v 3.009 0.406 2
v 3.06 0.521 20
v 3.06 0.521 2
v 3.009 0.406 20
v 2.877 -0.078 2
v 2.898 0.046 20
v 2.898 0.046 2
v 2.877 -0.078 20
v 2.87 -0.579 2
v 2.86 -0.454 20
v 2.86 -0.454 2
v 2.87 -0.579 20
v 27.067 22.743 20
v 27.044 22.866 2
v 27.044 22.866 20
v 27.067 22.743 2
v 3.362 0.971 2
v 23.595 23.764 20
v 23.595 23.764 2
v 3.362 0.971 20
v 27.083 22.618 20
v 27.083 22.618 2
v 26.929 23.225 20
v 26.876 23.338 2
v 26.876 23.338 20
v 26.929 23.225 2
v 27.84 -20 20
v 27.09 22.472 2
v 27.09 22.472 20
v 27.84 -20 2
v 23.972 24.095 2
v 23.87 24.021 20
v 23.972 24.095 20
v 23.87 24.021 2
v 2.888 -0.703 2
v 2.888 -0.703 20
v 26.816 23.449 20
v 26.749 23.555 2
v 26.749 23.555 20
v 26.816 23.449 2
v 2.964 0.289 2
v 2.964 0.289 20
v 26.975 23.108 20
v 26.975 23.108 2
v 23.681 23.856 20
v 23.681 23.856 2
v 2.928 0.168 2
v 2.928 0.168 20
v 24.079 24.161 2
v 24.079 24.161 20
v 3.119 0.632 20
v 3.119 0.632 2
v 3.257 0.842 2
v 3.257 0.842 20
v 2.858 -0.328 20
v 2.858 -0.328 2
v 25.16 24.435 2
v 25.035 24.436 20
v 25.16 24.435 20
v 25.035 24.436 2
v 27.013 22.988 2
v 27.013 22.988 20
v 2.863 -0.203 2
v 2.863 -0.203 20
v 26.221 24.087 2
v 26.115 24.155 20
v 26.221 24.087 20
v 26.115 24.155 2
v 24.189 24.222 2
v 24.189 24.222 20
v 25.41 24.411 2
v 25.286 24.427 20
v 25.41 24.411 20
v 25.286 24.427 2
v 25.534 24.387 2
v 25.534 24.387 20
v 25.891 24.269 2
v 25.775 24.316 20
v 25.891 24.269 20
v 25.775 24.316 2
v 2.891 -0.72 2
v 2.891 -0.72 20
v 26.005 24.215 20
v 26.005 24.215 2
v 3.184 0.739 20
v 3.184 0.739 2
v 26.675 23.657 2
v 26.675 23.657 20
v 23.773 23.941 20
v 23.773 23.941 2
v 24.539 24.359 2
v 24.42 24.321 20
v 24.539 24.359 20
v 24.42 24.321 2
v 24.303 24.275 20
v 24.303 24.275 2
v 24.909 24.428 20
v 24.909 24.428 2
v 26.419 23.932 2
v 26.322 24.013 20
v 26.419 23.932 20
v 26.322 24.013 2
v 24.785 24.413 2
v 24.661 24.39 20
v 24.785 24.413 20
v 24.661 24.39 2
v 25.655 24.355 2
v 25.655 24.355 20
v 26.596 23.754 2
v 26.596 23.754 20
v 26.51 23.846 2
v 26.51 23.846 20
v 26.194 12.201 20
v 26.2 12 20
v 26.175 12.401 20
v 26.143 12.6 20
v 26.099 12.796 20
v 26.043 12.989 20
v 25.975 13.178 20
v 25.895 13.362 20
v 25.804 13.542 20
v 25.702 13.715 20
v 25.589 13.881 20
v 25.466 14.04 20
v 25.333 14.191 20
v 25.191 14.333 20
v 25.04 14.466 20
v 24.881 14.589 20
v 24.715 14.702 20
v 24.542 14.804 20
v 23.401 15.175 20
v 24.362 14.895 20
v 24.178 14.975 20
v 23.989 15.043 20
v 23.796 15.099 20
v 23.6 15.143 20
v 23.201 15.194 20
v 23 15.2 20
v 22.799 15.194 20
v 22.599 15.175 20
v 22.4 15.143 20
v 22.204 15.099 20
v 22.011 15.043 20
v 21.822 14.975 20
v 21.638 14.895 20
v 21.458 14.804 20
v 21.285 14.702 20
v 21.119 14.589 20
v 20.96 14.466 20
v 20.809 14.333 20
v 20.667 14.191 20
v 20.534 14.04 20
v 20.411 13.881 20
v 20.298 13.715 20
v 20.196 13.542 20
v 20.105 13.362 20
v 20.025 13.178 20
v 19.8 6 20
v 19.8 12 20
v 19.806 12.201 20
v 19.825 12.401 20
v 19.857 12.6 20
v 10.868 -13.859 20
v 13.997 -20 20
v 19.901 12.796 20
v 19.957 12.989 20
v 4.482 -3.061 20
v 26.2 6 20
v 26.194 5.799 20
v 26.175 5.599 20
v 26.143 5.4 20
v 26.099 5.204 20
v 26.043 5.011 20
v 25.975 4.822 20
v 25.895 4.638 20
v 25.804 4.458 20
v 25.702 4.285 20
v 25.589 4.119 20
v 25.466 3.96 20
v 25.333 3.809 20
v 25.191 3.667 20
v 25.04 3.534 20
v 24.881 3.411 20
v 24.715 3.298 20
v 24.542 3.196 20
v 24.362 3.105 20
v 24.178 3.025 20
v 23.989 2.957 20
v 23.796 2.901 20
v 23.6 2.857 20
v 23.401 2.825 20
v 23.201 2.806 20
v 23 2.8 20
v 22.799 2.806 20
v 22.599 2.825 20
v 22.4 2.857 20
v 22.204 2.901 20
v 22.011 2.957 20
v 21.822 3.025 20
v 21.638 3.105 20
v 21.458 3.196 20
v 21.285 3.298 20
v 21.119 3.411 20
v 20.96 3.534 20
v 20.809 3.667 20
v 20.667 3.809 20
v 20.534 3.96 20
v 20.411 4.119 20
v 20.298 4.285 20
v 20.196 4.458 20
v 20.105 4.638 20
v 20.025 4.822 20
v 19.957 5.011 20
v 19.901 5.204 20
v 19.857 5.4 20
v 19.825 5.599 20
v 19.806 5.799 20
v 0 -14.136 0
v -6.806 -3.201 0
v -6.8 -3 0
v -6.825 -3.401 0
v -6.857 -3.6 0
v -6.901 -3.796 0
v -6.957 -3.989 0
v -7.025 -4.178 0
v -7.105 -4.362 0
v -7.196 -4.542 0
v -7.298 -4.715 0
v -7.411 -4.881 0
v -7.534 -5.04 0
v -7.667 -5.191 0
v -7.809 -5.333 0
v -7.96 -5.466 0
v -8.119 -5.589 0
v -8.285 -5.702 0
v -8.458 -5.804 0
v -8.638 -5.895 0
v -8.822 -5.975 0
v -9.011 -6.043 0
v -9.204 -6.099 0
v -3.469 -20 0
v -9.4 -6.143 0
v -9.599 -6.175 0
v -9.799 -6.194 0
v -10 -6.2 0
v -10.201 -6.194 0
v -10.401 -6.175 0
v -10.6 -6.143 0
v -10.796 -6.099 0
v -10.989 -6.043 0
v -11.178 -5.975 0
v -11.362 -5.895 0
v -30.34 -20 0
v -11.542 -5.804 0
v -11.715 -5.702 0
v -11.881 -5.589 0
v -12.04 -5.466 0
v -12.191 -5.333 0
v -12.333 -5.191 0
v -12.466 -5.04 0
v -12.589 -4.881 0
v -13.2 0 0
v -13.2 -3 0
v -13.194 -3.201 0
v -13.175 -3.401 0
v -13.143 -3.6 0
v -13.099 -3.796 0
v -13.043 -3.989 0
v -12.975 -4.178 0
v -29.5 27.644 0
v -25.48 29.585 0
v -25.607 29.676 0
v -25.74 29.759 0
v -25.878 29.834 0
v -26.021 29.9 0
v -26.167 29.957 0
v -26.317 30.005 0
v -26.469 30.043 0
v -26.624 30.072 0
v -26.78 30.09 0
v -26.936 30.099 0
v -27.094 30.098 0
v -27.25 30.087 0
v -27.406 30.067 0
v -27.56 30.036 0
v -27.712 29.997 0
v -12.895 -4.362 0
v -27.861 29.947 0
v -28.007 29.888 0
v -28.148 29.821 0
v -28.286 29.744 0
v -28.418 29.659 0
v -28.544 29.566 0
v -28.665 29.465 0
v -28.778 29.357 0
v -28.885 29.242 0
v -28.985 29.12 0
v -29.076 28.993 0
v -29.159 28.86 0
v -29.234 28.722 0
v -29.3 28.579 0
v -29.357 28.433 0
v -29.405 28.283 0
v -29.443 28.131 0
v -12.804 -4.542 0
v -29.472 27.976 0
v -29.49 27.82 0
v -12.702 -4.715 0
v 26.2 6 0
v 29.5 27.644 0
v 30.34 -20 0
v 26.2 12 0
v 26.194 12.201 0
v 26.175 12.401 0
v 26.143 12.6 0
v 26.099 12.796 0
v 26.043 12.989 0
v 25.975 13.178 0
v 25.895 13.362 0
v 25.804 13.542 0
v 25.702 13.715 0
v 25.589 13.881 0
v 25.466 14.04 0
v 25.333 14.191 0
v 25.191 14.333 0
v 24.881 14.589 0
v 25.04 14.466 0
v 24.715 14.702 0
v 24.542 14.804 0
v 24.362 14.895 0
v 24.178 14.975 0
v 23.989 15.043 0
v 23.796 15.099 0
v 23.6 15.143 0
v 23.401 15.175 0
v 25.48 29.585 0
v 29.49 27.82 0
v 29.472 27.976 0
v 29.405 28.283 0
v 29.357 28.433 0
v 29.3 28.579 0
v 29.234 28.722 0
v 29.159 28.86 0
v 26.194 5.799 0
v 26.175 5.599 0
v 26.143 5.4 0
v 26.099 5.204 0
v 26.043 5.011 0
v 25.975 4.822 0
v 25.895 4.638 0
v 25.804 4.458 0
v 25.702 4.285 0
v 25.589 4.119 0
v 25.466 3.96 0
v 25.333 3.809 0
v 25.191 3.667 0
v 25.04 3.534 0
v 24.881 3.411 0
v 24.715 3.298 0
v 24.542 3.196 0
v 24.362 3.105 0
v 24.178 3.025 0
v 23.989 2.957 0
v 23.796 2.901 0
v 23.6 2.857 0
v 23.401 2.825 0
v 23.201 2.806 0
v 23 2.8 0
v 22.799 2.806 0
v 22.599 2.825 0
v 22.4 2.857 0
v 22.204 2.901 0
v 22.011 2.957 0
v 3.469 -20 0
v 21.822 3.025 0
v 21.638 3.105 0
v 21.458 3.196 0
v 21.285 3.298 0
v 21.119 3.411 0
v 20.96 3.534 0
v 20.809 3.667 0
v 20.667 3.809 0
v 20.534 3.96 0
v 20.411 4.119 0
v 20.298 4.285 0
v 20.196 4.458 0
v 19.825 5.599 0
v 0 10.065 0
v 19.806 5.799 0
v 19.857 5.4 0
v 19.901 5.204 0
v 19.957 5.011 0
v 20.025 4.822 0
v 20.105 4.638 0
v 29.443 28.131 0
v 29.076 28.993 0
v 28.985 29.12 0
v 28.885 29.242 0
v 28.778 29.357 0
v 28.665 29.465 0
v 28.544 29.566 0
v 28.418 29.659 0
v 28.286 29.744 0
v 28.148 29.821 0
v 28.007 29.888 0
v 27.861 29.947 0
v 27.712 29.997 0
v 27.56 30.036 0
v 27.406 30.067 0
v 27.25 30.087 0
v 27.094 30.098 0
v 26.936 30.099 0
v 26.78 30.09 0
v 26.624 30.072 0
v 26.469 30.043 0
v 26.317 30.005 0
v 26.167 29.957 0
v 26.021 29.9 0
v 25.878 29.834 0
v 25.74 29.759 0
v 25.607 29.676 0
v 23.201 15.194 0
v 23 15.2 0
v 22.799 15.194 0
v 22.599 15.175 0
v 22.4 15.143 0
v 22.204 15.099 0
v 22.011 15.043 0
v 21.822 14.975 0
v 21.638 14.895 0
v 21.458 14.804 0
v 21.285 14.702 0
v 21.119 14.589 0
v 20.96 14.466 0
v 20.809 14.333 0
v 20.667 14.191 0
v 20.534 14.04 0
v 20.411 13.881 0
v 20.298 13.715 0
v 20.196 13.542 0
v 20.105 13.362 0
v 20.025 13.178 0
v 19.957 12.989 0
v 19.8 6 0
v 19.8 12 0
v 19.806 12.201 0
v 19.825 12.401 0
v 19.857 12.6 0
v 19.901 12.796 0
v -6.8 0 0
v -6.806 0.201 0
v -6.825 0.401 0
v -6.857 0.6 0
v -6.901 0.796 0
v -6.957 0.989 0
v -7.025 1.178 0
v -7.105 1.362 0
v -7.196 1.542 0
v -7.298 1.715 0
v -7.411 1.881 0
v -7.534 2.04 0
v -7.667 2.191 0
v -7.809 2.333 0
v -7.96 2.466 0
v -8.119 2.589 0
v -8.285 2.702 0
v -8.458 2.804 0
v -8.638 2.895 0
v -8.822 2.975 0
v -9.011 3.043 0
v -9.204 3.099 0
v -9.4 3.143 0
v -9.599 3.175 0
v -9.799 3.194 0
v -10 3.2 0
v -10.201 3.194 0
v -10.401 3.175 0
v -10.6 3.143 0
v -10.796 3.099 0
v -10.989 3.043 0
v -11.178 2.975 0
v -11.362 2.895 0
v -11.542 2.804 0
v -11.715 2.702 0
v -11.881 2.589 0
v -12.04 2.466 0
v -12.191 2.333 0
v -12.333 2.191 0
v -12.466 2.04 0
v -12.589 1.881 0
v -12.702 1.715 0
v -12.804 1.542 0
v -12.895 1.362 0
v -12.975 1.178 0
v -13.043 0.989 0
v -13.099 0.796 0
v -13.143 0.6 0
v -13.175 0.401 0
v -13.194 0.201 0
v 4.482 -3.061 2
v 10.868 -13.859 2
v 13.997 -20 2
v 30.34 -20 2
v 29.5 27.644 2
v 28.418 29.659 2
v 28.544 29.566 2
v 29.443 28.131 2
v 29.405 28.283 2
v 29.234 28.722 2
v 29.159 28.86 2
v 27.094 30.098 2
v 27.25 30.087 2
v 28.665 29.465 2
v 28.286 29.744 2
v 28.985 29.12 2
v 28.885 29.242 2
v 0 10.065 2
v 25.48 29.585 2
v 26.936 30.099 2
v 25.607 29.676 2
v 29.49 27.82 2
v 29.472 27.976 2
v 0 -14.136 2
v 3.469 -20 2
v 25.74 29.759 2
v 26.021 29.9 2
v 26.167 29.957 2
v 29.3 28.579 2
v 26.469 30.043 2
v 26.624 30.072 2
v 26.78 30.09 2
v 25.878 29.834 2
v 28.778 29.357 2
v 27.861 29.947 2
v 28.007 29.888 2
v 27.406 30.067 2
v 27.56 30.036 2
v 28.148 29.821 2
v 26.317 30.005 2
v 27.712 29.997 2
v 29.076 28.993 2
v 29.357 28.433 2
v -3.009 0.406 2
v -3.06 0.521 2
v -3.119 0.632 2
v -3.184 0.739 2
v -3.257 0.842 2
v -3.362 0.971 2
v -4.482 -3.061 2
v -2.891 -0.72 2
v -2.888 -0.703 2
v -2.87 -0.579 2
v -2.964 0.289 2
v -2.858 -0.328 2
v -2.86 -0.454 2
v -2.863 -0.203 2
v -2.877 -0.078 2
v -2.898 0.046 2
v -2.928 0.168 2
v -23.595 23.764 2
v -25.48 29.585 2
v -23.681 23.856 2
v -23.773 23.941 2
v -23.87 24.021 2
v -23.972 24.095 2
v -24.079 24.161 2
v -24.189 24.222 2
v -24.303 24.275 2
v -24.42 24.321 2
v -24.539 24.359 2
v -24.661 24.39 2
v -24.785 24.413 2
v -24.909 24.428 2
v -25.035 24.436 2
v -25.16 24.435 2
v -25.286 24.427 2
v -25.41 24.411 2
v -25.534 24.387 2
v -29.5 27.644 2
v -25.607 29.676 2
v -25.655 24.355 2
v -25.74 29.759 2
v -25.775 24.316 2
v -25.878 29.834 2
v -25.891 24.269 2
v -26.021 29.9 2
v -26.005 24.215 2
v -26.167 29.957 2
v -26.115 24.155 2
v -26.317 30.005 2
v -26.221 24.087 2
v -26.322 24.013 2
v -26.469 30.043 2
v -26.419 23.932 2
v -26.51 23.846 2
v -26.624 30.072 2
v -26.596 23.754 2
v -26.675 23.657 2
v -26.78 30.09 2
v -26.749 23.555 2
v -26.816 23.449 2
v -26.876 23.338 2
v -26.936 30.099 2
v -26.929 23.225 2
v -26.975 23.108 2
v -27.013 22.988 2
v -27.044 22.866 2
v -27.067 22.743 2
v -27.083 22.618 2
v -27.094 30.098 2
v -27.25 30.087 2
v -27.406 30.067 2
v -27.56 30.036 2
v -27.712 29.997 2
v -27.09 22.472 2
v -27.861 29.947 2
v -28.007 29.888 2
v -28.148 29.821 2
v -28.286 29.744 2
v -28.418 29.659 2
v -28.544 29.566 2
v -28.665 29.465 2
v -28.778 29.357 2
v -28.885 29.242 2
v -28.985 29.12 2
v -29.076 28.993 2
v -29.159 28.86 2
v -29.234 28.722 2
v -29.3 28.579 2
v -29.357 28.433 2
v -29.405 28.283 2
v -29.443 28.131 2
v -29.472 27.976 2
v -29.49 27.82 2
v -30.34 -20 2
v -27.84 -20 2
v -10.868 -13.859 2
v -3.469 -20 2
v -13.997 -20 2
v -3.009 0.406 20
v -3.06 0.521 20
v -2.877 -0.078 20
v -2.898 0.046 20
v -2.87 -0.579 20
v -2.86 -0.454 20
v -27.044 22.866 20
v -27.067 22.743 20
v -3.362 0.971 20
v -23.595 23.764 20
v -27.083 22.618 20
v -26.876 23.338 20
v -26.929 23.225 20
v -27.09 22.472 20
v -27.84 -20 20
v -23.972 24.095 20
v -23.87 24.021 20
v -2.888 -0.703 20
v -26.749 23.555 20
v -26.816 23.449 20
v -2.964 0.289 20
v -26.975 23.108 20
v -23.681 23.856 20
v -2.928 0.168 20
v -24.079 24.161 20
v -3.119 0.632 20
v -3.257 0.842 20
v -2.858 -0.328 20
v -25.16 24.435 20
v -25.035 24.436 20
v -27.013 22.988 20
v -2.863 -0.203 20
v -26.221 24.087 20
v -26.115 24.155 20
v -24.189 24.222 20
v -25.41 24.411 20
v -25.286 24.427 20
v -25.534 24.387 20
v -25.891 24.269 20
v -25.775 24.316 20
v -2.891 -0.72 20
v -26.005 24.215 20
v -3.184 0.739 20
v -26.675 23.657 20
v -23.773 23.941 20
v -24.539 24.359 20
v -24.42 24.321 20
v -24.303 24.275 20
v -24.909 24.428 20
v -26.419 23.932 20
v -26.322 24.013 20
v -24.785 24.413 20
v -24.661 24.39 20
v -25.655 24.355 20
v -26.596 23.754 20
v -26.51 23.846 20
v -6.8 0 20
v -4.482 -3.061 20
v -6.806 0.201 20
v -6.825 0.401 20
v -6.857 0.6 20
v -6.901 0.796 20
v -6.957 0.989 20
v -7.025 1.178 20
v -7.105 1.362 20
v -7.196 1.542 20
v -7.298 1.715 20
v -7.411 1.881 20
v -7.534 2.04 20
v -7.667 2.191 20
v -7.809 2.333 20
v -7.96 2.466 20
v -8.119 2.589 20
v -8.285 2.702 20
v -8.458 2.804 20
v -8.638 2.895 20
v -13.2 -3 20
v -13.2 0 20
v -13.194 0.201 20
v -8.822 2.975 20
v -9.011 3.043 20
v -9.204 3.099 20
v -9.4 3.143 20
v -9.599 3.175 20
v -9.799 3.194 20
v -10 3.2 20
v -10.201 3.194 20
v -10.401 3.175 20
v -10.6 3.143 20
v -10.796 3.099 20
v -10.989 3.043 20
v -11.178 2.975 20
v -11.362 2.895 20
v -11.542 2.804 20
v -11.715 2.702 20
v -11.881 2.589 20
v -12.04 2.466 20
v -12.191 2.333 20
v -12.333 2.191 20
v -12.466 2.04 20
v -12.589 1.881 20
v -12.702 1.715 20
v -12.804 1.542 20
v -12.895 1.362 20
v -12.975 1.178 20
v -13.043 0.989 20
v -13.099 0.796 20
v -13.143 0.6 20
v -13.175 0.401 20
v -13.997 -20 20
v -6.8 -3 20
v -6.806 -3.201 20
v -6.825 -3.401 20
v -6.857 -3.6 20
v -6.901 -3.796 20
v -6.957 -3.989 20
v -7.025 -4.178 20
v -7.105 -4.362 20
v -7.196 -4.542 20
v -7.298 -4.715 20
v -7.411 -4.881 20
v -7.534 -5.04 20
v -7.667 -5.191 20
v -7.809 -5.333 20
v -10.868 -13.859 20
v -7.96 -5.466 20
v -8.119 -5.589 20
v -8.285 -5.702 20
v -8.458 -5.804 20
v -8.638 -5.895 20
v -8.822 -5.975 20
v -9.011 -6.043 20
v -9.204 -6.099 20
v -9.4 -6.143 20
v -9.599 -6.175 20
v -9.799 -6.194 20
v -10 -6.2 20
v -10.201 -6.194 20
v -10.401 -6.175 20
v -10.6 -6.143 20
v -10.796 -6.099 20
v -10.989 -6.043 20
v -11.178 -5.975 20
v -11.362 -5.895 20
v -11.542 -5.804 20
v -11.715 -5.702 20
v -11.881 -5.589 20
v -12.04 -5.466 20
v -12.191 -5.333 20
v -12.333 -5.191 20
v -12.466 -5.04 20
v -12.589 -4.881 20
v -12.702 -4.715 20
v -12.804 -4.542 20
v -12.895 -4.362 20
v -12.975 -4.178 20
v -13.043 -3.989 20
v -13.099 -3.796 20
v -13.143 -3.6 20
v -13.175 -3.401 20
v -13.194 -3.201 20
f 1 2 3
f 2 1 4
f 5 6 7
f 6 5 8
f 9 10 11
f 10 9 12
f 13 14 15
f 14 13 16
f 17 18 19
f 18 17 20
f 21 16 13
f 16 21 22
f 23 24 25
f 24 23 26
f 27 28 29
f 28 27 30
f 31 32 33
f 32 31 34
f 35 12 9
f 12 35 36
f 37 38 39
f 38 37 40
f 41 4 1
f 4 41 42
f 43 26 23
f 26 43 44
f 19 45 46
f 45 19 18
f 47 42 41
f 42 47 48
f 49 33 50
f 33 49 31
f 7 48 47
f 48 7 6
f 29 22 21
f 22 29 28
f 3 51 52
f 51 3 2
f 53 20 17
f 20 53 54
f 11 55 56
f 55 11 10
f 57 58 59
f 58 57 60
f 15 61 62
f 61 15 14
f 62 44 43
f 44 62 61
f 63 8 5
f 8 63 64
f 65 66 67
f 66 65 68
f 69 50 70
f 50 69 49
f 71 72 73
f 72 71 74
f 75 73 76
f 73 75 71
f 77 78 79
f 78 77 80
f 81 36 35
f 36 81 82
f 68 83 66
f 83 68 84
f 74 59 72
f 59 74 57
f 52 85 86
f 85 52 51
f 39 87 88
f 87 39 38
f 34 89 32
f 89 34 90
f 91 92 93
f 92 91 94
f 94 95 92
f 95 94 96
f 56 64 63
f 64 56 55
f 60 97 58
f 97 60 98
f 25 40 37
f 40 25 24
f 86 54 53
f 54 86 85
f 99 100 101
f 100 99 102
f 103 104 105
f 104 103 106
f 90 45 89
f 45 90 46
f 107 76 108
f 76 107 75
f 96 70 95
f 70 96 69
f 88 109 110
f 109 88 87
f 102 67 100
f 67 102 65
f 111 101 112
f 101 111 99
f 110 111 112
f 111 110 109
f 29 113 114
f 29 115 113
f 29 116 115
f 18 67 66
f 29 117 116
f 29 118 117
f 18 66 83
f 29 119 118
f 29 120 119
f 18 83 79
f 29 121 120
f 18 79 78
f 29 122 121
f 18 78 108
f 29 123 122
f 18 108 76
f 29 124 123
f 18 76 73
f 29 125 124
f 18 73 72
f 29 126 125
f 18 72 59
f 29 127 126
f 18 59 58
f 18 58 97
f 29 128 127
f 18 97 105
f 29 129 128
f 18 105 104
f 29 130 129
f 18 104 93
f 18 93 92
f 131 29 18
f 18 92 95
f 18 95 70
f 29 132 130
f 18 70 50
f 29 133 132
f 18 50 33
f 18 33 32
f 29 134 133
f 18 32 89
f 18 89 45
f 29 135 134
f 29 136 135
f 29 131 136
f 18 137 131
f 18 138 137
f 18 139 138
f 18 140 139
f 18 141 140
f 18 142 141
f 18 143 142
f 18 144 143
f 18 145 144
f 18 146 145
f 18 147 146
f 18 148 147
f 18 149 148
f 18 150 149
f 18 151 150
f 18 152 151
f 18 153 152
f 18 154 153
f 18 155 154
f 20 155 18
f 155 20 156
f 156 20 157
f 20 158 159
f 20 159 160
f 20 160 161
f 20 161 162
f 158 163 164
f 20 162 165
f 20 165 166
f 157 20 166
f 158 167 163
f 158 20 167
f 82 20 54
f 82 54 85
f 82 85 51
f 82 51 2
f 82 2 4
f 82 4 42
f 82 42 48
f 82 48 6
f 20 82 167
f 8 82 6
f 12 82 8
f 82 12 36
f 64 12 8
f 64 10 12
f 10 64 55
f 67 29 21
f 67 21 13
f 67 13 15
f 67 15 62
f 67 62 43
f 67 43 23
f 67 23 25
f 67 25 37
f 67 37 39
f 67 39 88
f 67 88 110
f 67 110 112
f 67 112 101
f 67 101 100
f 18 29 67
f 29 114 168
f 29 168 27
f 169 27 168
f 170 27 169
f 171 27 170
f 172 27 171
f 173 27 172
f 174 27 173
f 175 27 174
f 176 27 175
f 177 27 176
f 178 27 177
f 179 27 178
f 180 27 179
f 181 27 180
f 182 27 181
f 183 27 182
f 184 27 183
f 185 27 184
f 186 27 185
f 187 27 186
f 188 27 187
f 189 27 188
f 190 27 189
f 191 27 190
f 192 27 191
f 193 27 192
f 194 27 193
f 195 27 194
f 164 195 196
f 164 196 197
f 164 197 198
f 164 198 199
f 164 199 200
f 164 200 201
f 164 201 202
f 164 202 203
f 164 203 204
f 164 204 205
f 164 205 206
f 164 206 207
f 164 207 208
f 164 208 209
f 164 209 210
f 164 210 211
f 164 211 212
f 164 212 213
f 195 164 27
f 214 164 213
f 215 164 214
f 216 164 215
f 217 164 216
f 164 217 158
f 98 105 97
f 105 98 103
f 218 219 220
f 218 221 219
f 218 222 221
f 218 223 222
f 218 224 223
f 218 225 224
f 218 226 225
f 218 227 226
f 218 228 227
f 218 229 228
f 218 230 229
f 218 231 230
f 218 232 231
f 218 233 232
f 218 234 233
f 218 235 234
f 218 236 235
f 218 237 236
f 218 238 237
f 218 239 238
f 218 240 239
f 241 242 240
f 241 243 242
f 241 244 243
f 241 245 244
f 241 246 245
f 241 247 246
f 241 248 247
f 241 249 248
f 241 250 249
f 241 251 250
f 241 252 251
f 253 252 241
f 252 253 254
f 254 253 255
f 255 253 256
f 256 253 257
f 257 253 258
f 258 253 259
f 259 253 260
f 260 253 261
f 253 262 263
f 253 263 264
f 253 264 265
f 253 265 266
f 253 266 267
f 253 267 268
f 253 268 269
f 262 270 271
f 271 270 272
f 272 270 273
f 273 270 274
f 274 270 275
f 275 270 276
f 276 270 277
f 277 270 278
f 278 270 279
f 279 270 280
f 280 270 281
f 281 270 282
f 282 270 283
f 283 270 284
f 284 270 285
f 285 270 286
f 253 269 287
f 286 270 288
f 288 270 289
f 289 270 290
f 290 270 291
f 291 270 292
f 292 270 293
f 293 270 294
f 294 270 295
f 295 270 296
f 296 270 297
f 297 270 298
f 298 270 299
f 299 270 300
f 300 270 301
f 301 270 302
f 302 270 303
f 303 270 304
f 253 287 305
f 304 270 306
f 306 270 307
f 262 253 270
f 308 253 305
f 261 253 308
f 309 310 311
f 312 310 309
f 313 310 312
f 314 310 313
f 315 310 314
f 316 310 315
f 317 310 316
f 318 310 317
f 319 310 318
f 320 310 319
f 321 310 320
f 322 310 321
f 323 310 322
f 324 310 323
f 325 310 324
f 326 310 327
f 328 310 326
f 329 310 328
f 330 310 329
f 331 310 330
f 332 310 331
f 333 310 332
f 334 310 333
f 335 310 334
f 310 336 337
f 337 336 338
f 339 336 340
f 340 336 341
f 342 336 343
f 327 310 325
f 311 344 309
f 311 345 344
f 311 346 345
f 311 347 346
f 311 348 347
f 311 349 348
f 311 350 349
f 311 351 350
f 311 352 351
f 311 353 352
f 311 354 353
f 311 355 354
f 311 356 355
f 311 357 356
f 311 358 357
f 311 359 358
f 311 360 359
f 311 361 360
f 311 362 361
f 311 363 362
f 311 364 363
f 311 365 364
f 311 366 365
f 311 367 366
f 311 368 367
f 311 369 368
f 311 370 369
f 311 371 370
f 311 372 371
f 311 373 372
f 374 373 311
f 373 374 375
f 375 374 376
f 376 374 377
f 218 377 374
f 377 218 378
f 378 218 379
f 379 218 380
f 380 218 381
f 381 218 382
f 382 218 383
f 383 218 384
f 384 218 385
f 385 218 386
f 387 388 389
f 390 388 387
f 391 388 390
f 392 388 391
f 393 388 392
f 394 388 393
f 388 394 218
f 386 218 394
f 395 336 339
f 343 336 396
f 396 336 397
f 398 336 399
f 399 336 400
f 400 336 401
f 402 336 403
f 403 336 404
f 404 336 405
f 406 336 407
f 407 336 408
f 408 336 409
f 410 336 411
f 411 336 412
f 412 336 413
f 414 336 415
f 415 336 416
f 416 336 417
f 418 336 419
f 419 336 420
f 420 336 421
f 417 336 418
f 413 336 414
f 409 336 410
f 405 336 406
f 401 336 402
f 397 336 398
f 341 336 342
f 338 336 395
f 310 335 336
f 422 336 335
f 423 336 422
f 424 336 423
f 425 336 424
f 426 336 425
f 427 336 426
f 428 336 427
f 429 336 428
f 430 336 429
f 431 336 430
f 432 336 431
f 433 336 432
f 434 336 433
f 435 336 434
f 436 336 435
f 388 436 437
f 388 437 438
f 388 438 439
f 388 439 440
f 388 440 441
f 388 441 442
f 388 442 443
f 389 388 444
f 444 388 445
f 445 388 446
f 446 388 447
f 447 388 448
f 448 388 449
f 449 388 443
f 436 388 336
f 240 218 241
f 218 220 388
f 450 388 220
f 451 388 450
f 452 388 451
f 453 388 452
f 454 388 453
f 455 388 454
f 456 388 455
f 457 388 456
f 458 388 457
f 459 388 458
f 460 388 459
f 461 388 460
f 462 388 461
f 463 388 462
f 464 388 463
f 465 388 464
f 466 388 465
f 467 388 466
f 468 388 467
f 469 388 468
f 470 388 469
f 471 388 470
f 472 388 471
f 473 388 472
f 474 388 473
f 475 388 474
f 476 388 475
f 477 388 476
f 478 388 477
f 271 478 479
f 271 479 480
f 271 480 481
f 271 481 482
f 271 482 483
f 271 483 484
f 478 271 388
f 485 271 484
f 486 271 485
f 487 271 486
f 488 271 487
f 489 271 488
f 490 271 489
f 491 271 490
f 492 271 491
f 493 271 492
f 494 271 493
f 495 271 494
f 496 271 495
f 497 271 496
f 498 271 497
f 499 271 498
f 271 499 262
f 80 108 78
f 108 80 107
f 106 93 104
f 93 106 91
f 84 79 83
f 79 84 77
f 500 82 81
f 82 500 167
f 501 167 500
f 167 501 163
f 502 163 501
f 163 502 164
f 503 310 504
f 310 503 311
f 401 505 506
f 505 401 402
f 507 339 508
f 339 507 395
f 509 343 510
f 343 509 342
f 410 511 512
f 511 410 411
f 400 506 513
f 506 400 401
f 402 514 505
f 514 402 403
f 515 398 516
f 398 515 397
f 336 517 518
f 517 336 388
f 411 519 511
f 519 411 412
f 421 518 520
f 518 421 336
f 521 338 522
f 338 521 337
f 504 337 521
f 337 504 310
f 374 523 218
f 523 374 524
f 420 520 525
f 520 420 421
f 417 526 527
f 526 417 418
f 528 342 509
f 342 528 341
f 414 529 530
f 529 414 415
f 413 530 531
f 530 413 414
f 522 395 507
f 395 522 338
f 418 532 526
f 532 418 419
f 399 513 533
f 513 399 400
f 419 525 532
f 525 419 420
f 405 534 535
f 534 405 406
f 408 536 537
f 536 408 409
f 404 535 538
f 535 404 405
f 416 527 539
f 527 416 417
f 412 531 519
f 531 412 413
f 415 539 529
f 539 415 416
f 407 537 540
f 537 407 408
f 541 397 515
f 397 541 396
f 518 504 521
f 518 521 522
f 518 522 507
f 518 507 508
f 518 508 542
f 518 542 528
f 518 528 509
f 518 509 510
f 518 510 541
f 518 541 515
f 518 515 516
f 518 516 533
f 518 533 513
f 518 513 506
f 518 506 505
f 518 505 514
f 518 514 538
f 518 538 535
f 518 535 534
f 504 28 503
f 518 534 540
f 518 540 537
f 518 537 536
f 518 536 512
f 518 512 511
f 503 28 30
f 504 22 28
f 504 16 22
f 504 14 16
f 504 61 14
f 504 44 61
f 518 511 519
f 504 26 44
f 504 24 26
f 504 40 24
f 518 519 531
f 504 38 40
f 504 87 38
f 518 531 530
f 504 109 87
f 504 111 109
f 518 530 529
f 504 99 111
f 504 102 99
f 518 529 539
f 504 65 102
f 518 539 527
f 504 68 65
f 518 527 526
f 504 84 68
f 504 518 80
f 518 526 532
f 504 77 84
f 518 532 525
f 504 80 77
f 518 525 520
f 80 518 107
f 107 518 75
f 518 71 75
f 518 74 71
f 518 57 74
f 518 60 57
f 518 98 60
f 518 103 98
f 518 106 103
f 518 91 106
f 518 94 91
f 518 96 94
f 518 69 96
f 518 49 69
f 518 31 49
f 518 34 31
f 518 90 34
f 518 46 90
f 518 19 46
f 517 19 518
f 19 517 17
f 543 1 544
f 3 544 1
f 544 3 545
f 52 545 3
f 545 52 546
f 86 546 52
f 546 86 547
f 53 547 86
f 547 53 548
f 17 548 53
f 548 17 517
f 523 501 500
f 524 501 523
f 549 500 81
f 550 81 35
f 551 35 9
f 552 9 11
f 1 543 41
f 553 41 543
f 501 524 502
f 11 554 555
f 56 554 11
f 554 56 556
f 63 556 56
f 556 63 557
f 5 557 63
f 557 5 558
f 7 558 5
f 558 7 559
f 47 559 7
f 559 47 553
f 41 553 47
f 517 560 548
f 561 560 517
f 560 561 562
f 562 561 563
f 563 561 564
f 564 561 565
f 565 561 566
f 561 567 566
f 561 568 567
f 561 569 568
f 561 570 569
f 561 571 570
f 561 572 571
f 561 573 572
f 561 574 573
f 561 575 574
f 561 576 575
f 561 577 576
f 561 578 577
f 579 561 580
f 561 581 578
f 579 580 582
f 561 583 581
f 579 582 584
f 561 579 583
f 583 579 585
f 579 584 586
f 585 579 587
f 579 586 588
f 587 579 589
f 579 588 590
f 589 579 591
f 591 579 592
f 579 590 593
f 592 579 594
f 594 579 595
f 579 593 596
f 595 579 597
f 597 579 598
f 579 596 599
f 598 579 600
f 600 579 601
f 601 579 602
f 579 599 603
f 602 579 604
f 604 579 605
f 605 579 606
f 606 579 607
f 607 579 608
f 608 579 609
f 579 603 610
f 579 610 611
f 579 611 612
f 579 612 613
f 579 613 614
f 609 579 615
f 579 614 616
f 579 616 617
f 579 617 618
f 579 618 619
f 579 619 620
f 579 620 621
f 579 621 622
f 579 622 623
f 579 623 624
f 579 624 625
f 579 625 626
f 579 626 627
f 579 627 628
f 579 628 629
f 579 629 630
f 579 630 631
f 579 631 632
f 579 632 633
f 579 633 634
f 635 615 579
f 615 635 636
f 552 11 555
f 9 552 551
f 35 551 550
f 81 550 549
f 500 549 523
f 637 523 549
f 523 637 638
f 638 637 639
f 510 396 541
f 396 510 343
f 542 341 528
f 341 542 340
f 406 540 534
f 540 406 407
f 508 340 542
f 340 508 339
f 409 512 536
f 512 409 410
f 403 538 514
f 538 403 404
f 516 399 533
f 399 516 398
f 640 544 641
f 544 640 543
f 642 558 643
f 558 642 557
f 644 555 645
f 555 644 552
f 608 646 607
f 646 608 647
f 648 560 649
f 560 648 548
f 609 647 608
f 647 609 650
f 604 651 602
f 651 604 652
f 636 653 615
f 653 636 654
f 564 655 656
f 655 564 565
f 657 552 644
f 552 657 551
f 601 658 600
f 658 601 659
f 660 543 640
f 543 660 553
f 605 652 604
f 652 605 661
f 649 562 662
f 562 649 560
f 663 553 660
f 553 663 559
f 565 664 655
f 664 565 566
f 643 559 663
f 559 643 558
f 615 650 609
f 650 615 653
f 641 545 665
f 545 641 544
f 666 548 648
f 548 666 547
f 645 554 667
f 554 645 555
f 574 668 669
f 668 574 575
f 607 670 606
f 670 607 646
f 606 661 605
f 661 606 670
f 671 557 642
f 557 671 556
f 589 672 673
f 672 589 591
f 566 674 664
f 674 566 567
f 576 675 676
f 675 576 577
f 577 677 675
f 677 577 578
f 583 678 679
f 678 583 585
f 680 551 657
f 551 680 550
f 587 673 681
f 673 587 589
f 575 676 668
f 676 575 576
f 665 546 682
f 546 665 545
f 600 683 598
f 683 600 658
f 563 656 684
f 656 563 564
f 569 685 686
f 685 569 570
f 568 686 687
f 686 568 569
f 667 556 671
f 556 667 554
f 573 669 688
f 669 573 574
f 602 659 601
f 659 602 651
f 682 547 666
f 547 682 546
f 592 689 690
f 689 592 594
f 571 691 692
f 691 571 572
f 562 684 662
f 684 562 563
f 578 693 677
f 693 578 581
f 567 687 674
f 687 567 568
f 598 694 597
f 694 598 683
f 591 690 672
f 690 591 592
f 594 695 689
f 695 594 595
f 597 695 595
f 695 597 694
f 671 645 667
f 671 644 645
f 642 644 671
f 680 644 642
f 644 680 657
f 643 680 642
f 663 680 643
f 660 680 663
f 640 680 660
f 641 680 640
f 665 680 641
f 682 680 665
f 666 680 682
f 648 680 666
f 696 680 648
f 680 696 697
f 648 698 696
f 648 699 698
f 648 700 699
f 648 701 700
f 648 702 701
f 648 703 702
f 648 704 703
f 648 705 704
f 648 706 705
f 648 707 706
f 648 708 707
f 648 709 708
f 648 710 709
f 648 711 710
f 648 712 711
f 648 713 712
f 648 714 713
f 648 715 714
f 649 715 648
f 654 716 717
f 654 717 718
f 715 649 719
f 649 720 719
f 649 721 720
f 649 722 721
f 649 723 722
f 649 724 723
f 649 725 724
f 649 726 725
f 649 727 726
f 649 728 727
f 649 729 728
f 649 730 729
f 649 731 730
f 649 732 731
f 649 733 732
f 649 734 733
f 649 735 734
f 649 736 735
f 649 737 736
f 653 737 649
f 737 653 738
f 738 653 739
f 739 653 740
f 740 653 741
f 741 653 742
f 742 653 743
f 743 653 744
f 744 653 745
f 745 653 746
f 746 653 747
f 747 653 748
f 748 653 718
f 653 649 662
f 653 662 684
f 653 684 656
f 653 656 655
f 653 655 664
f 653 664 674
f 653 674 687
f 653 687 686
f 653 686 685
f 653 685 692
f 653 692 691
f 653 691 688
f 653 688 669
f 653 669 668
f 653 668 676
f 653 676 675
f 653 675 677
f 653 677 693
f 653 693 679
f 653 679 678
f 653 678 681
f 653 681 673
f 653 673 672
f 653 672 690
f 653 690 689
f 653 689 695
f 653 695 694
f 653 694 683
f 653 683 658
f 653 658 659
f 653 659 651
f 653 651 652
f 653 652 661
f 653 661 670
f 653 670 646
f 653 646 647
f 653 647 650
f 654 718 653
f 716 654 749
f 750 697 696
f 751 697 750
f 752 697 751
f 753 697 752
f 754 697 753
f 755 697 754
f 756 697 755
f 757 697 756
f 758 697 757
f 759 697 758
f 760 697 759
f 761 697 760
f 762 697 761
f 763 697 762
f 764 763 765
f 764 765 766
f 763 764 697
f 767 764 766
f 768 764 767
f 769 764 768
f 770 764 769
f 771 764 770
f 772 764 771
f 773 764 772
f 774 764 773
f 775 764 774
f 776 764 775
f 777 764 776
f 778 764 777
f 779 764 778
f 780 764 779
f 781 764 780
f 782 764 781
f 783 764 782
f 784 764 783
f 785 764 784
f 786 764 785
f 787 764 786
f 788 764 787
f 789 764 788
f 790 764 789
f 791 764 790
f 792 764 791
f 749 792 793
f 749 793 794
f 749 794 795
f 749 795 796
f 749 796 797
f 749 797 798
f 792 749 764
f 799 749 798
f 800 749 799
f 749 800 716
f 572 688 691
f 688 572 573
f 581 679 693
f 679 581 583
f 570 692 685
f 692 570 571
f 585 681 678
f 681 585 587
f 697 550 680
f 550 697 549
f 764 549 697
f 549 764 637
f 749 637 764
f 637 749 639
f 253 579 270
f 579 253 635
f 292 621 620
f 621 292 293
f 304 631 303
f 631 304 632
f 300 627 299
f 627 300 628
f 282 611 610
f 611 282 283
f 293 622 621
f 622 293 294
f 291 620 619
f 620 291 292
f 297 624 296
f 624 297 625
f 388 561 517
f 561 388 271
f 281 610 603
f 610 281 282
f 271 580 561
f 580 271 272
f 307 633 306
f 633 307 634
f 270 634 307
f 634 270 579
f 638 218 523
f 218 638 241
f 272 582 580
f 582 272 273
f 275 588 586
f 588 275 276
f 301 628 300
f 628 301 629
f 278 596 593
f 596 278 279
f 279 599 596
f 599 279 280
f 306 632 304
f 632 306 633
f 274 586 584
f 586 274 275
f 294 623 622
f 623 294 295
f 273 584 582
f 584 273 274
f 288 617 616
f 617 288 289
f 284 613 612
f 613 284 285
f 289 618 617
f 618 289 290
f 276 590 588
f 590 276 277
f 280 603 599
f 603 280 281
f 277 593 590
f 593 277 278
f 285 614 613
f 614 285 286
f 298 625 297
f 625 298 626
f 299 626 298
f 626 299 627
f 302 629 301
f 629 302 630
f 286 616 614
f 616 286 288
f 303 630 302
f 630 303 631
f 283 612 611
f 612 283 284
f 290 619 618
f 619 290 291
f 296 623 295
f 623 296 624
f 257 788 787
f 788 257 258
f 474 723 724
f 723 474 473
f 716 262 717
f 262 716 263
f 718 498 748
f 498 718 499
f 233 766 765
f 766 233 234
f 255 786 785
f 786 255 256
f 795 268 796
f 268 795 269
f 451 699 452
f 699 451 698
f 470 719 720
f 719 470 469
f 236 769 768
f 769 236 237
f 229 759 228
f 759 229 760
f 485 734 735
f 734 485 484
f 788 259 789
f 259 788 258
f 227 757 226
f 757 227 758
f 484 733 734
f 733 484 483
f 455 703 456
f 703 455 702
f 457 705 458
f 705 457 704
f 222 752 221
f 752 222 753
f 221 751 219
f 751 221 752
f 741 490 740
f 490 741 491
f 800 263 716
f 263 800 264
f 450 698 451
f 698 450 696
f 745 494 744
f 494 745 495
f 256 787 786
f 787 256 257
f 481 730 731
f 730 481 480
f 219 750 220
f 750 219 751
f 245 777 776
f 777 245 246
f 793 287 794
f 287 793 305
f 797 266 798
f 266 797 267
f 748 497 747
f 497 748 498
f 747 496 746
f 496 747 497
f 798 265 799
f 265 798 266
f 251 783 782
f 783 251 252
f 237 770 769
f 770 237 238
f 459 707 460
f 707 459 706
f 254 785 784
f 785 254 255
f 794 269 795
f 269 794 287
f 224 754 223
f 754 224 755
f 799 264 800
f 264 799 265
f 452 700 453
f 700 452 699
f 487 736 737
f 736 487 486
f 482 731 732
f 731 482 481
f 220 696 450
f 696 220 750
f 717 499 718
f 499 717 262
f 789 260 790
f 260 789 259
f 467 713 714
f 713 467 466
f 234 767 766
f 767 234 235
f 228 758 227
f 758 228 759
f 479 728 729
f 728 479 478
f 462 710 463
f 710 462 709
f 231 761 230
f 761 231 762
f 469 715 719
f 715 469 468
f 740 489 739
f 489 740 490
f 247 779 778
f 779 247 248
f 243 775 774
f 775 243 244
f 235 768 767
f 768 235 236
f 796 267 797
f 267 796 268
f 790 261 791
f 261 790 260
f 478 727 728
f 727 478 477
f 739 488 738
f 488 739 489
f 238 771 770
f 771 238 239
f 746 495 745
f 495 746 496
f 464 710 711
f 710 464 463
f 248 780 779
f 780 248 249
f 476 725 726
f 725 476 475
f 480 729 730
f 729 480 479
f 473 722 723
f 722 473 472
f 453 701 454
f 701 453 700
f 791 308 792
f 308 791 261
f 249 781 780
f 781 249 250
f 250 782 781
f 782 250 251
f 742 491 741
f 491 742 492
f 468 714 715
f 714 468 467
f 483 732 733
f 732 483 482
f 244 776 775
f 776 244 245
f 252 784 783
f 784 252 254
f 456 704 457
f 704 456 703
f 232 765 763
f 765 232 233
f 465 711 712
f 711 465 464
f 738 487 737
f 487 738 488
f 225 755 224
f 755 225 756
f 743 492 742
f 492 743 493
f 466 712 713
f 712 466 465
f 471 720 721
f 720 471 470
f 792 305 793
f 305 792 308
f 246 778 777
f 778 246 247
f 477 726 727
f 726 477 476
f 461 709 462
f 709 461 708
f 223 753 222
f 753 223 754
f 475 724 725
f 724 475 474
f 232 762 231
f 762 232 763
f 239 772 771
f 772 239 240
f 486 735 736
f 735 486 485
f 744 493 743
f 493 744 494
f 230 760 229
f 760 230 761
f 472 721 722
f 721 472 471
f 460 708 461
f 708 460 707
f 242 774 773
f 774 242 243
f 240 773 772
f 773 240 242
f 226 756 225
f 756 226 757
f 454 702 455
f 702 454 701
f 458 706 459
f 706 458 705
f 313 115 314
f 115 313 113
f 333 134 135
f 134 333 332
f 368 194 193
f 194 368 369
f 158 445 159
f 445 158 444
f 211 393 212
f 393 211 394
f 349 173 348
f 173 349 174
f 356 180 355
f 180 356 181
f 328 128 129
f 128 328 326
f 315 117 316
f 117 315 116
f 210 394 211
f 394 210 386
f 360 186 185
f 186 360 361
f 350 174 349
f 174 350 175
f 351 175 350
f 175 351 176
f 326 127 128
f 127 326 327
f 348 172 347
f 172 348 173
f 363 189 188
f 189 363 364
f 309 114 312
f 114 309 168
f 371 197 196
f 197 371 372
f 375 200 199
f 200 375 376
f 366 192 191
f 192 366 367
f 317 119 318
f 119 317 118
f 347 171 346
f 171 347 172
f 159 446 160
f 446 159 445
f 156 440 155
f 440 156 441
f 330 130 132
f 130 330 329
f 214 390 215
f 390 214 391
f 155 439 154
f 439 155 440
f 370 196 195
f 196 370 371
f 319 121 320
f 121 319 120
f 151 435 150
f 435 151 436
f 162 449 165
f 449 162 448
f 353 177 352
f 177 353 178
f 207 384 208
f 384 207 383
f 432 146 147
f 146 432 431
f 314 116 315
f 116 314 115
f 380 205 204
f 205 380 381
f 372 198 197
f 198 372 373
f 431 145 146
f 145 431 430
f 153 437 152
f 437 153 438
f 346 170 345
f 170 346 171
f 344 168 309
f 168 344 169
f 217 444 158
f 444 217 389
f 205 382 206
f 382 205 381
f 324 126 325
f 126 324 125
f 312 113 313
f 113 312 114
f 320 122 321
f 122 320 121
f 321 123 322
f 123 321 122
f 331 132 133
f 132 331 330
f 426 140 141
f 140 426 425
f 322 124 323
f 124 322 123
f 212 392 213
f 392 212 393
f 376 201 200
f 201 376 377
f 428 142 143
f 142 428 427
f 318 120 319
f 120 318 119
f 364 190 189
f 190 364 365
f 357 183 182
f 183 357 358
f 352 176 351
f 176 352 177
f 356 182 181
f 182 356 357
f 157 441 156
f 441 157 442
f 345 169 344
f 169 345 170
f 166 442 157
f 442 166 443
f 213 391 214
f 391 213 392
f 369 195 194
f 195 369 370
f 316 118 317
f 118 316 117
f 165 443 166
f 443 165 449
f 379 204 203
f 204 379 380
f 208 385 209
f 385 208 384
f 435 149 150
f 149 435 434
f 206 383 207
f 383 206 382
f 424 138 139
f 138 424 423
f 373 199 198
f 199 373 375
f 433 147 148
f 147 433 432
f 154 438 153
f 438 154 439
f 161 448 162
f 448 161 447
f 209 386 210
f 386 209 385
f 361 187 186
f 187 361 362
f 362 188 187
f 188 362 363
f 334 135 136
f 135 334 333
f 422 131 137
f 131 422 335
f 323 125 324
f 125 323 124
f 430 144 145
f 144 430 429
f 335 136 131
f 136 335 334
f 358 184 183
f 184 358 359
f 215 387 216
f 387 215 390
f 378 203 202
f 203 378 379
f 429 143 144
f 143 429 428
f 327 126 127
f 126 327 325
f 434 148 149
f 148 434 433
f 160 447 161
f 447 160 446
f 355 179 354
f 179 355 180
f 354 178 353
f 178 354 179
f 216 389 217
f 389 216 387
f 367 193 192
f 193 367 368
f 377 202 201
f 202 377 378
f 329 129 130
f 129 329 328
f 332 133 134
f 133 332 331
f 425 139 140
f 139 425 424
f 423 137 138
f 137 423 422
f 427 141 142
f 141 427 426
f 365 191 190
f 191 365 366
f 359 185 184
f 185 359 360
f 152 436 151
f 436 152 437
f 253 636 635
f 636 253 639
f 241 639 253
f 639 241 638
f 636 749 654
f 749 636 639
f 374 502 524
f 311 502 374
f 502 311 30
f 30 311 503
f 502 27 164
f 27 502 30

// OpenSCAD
// buttkicker porsche v2

$fn=100;


// sides 85, 63, 38

// A[85; 0] B[0; 0] C[27.647; 26.07]
A = [0, 1.5];
B = [85, 0];
C = [27.6, 26];
CM = [27.6, -26];

TRIM = 0.1;
TRIM2 = TRIM * 2;


function radius_from_segment(h, w) = ( h / 2) + ( w^2 / (h * 8) );

function circle_center(x1, y1, x2, y2, r) = [ 
    (x1+x2)/2 - sqrt(r^2-( sqrt((x2-x1)^2 + (y2-y1)^2)  /2)^2)*(y1-y2)/ sqrt((x2-x1)^2 + (y2-y1)^2) ,
    (y1+y2)/2 - sqrt(r^2-( sqrt((x2-x1)^2 + (y2-y1)^2)  /2)^2)*(x2-x1)/ sqrt((x2-x1)^2 + (y2-y1)^2)  
];

module copy_mirror(vec=[0, 1, 0])
{ 
    children(); 
    mirror(vec) children(); 
}

echo(circle_center(B[0], B[1], C[0], C[1], 152));

BA_R = radius_from_segment(h=2.5, w=85);
BC_R = radius_from_segment(h=2.5, w=63);


echo(radius_from_segment(h=2.5, w=63));
echo(radius_from_segment(h=2.8, w=85));

// A[76; 0] B[0; 0] C[26.158; 23.254]

module side(base_height=8, inner_height=18) {
  
  difference() {

    intersection() {
      linear_extrude(inner_height + base_height)
      offset(r=2)
      offset(r=-2)
      polygon([ A, B, C ]);
      translate(circle_center(B[0], B[1], A[0], A[1], BA_R))
      cylinder(30, r=BA_R);
      
    }
    translate(circle_center(B[0], B[1], C[0], C[1], BC_R))
    cylinder(30, r=BC_R);
  }

  linear_extrude(base_height)
  offset(r=2.5)
  polygon([ A, B, [C[0] + 5, C[1] + 5], [C[0] - 5, C[1] + 5] ]);
}

module holes() {
 
  //bit at the front
  translate([-20, 28, -TRIM])
  cube([100, 10, 2]);
  
  translate([33, 0, -TRIM])
  hull() {
    cylinder(h = 35, r = 3.2);
    translate([0, 3, 0])
    cylinder(h = 35, r = 3.2);
  }
  
  translate([0, 9, -TRIM])
  hull() {
    cylinder(h = 35, r = 3.2);
    translate([0, 6, 0])
    cylinder(h = 35, r = 3.2);
  }
  
  
  
}

module bottom() {
  difference() {
  
    rotate([0, 0, -90])
    translate([-C[0], 0, 0])
    copy_mirror()
    translate([0, -C[1] - 2.5, 0])
    side();
    
    translate([-23, -3, 0])
    holes();
  }
}

module top() {
  difference() {
    
    mirror([0, 0, 1])
    rotate([0, 0, -90])
    translate([-C[0], 0, 0])
    copy_mirror()
    translate([0, -C[1] - 2.5, 0])
    side(base_height=2);
  
    translate([-23, -3, -30])
    holes();
  }
}


*bottom();

//translate([0, 0, 60])

difference(){
  rotate([0 , 180, 0])
  top();
  translate([-50,-70,-1])
  cube([100,50,50]);
}
